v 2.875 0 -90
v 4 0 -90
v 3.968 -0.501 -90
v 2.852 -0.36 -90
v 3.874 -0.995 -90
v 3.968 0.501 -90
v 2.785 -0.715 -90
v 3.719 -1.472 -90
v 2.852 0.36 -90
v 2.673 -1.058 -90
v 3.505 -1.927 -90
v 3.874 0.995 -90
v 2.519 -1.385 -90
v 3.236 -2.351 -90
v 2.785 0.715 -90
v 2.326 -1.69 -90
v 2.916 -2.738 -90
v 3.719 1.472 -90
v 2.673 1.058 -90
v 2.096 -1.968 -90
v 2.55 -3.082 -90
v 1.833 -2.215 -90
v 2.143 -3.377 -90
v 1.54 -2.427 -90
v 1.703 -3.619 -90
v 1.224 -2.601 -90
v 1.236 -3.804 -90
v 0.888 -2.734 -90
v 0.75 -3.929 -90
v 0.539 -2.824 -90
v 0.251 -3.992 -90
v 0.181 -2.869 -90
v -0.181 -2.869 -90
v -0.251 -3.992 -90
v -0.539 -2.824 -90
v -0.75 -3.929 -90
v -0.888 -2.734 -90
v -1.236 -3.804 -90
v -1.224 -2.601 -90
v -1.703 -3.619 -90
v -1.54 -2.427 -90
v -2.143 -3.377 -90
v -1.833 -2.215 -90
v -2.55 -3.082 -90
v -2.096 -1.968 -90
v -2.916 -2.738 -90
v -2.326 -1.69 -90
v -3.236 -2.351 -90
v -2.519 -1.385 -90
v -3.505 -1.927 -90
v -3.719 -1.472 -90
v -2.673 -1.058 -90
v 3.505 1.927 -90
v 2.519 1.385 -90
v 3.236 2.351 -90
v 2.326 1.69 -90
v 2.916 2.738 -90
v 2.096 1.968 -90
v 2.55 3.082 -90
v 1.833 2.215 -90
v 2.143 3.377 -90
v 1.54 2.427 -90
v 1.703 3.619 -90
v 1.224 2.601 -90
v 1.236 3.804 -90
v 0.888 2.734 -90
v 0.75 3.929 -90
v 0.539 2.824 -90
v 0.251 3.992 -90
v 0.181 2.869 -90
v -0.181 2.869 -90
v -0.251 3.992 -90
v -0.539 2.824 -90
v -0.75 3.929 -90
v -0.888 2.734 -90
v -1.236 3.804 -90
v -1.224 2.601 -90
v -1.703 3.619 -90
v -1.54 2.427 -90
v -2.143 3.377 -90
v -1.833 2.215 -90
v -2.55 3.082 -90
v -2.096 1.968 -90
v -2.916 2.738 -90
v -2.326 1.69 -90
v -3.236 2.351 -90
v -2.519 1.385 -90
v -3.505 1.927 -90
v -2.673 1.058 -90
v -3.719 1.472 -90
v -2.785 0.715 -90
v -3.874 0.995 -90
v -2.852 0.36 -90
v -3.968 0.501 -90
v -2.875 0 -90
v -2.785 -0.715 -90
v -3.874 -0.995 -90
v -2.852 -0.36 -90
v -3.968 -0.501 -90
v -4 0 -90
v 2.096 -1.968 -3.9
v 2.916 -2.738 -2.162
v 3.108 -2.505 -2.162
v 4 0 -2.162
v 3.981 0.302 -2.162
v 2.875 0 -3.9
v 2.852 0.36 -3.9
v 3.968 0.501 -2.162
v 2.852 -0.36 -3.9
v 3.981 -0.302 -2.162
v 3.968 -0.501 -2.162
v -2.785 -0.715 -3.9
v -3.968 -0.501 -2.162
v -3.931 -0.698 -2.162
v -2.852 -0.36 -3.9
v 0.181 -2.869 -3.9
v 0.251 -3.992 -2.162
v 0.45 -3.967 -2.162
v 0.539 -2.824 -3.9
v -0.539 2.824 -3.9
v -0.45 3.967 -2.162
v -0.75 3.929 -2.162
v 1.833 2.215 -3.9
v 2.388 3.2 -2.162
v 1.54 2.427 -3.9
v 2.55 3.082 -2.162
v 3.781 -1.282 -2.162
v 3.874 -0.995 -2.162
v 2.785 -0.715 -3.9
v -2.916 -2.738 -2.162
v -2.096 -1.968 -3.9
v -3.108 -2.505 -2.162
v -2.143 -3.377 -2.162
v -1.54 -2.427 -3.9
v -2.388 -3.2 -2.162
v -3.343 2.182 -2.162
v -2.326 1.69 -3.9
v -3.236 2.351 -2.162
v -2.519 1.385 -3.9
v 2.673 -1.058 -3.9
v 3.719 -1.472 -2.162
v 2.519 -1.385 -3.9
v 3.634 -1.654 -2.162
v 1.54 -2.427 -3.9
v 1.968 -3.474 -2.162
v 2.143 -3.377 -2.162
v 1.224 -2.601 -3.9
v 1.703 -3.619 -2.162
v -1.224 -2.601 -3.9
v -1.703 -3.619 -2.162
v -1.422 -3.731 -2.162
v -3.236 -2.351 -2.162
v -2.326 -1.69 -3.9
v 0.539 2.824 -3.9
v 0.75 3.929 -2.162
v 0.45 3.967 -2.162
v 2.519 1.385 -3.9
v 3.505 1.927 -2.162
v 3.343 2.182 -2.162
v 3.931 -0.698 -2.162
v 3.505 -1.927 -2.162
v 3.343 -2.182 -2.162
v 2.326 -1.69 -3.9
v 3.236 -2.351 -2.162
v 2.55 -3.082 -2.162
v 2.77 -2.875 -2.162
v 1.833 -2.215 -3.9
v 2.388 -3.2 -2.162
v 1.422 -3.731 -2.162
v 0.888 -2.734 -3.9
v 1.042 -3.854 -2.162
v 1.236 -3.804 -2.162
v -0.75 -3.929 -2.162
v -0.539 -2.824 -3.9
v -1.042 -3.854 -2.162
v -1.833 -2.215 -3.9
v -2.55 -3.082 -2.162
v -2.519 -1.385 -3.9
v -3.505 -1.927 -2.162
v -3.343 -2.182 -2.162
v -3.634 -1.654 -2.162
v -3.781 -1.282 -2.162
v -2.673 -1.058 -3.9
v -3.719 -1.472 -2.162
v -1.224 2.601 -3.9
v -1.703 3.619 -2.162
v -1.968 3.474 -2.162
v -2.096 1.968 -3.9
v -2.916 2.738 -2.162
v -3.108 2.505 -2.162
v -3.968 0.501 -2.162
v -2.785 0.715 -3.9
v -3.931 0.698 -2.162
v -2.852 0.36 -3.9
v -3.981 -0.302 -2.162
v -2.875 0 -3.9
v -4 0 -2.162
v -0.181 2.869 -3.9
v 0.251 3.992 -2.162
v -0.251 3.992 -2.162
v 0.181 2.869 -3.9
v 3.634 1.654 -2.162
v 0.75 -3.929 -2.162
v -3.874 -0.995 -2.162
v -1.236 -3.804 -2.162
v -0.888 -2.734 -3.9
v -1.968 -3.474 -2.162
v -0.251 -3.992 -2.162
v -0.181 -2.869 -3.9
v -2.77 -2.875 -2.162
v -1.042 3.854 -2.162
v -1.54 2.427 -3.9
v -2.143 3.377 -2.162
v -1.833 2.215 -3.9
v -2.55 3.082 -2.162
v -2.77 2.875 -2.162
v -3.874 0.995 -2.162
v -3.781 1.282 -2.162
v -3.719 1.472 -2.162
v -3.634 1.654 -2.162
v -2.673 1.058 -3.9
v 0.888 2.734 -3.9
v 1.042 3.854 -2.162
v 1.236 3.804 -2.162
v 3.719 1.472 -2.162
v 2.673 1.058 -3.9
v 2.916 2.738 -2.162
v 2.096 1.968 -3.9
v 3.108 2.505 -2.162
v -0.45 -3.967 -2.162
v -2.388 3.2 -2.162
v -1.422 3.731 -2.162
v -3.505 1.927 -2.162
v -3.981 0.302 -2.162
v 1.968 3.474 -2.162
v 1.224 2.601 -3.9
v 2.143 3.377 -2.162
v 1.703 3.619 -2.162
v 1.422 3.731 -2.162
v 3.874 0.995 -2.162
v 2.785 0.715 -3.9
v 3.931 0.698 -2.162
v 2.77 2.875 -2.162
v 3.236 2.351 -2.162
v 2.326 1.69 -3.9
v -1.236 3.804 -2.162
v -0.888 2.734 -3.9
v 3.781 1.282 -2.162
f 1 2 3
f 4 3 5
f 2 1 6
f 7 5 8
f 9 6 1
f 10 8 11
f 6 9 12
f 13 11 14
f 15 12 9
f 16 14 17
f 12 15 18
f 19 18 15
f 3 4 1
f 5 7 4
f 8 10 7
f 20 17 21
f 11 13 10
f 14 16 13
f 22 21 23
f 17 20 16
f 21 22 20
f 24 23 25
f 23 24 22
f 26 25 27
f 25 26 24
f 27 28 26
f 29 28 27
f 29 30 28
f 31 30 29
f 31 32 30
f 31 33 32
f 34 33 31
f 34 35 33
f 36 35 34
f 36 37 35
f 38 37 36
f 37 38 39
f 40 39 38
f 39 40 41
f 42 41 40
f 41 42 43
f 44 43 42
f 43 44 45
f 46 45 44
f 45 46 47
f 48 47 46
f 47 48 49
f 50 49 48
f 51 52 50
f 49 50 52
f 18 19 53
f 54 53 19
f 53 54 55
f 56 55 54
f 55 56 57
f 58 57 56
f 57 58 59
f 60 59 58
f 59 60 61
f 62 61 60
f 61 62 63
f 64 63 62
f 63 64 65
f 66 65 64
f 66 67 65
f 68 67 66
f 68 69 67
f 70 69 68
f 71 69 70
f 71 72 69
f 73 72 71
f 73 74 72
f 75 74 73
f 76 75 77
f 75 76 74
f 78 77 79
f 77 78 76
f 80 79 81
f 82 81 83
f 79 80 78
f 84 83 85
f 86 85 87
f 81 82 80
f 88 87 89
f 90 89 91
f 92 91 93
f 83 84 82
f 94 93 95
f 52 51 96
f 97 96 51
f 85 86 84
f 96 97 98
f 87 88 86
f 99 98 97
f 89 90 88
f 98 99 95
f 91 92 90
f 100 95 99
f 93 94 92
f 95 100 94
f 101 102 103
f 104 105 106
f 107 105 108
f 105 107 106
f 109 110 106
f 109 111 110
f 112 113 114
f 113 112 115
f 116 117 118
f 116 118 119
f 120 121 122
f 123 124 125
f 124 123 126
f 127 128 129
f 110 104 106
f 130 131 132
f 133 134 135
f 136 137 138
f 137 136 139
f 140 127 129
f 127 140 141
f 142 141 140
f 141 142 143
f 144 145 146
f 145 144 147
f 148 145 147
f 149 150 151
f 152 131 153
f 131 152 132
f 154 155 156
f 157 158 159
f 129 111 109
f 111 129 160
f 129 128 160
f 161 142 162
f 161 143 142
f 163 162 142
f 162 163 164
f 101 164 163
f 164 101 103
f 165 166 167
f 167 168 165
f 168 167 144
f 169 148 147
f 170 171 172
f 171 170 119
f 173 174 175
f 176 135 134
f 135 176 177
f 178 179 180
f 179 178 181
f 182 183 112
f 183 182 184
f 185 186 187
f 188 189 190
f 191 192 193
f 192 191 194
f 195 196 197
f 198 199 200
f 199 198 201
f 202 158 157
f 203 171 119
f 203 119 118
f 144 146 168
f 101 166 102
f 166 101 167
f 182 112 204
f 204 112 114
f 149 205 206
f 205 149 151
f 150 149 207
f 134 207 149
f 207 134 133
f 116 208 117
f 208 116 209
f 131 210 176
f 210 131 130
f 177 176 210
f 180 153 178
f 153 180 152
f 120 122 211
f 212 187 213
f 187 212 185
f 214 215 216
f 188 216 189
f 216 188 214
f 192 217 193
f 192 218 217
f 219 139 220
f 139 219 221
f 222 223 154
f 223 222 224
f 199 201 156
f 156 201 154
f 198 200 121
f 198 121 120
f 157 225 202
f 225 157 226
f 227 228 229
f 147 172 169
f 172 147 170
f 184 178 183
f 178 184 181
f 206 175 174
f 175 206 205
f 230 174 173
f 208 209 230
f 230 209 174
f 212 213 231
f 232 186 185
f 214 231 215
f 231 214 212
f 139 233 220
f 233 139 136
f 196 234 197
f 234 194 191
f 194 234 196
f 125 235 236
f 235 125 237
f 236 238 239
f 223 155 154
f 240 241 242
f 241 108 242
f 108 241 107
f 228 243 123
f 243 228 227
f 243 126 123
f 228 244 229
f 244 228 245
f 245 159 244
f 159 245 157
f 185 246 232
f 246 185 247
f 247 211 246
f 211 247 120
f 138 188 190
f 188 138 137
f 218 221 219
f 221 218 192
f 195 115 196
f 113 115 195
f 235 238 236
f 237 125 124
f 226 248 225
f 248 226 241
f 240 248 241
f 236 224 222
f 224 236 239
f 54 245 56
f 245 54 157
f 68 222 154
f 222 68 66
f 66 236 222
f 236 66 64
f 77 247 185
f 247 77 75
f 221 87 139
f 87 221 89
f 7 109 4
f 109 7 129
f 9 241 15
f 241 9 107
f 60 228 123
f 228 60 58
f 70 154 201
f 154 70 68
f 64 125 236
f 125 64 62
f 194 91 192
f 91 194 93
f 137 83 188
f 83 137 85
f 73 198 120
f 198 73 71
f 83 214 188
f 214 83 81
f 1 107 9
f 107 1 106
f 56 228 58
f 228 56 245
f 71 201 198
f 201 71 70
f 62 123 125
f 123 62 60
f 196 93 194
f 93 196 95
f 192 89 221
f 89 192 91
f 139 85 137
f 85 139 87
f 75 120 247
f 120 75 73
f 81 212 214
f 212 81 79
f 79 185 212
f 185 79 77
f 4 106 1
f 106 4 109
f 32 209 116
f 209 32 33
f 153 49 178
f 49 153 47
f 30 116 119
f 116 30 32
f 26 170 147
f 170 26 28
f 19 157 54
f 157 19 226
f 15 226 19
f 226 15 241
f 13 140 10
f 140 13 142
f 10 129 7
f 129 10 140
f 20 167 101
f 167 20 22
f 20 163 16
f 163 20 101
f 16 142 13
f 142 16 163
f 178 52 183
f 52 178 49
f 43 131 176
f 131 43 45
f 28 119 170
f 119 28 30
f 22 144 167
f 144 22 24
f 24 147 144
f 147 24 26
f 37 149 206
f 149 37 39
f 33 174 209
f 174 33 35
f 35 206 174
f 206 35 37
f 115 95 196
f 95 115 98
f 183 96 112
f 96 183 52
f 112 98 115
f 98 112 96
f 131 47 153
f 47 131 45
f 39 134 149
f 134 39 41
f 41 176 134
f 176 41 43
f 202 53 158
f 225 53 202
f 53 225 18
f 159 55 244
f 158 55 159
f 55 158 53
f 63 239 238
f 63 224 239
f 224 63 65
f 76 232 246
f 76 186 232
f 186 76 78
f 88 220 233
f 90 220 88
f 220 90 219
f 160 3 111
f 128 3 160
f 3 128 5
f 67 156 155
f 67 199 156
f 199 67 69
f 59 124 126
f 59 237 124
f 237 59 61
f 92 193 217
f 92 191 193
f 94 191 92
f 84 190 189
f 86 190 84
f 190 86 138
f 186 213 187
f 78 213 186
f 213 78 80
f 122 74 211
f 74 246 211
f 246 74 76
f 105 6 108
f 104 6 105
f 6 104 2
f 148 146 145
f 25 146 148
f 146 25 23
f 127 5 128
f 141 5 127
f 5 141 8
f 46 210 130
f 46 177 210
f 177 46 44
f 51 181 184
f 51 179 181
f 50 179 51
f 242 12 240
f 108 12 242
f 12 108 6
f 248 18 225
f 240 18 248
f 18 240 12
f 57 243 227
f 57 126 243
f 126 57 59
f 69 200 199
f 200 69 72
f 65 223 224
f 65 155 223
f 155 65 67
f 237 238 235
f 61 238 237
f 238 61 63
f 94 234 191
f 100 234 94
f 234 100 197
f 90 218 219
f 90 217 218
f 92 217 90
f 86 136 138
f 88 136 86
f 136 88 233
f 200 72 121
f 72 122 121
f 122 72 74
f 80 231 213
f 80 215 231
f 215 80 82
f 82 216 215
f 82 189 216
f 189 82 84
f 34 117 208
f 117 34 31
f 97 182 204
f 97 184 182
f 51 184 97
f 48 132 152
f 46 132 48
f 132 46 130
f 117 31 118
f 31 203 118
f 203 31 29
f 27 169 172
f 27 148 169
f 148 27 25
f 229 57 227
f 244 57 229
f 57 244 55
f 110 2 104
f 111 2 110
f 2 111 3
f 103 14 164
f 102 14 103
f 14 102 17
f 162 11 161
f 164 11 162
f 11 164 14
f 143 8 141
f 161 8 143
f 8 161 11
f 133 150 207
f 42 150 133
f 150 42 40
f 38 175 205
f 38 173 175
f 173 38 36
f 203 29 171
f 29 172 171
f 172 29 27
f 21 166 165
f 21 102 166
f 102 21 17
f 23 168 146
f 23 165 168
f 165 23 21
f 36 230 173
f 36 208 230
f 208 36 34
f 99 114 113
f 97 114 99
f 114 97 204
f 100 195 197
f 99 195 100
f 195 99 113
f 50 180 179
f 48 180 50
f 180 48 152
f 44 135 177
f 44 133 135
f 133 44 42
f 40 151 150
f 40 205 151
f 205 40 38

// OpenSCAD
$fn = 50;


difference() {
	union() {
		translate(v = [0, 0, -90.0000000000]) {
			cylinder(h = 90, r = 4.0000000000);
		}
		cylinder(h = 0, r = 7.0000000000);
	}
	union() {
		translate(v = [0, 0, 0]) {
			rotate(a = [0, 0, 0]) {
				difference() {
					union() {
						#translate(v = [0, 0, -90.0000000000]) {
							cylinder(h = 90, r = 2.6000000000);
						}
						#translate(v = [0, 0, -3.9000000000]) {
							cylinder(h = 3.9000000000, r1 = 2.8750000000, r2 = 5.4000000000);
						}
						#translate(v = [0, 0, -90.0000000000]) {
							cylinder(h = 90, r = 2.8750000000);
						}
						#translate(v = [0, 0, -90.0000000000]) {
							cylinder(h = 90, r = 2.6000000000);
						}
					}
					union();
				}
			}
		}
	}
}
